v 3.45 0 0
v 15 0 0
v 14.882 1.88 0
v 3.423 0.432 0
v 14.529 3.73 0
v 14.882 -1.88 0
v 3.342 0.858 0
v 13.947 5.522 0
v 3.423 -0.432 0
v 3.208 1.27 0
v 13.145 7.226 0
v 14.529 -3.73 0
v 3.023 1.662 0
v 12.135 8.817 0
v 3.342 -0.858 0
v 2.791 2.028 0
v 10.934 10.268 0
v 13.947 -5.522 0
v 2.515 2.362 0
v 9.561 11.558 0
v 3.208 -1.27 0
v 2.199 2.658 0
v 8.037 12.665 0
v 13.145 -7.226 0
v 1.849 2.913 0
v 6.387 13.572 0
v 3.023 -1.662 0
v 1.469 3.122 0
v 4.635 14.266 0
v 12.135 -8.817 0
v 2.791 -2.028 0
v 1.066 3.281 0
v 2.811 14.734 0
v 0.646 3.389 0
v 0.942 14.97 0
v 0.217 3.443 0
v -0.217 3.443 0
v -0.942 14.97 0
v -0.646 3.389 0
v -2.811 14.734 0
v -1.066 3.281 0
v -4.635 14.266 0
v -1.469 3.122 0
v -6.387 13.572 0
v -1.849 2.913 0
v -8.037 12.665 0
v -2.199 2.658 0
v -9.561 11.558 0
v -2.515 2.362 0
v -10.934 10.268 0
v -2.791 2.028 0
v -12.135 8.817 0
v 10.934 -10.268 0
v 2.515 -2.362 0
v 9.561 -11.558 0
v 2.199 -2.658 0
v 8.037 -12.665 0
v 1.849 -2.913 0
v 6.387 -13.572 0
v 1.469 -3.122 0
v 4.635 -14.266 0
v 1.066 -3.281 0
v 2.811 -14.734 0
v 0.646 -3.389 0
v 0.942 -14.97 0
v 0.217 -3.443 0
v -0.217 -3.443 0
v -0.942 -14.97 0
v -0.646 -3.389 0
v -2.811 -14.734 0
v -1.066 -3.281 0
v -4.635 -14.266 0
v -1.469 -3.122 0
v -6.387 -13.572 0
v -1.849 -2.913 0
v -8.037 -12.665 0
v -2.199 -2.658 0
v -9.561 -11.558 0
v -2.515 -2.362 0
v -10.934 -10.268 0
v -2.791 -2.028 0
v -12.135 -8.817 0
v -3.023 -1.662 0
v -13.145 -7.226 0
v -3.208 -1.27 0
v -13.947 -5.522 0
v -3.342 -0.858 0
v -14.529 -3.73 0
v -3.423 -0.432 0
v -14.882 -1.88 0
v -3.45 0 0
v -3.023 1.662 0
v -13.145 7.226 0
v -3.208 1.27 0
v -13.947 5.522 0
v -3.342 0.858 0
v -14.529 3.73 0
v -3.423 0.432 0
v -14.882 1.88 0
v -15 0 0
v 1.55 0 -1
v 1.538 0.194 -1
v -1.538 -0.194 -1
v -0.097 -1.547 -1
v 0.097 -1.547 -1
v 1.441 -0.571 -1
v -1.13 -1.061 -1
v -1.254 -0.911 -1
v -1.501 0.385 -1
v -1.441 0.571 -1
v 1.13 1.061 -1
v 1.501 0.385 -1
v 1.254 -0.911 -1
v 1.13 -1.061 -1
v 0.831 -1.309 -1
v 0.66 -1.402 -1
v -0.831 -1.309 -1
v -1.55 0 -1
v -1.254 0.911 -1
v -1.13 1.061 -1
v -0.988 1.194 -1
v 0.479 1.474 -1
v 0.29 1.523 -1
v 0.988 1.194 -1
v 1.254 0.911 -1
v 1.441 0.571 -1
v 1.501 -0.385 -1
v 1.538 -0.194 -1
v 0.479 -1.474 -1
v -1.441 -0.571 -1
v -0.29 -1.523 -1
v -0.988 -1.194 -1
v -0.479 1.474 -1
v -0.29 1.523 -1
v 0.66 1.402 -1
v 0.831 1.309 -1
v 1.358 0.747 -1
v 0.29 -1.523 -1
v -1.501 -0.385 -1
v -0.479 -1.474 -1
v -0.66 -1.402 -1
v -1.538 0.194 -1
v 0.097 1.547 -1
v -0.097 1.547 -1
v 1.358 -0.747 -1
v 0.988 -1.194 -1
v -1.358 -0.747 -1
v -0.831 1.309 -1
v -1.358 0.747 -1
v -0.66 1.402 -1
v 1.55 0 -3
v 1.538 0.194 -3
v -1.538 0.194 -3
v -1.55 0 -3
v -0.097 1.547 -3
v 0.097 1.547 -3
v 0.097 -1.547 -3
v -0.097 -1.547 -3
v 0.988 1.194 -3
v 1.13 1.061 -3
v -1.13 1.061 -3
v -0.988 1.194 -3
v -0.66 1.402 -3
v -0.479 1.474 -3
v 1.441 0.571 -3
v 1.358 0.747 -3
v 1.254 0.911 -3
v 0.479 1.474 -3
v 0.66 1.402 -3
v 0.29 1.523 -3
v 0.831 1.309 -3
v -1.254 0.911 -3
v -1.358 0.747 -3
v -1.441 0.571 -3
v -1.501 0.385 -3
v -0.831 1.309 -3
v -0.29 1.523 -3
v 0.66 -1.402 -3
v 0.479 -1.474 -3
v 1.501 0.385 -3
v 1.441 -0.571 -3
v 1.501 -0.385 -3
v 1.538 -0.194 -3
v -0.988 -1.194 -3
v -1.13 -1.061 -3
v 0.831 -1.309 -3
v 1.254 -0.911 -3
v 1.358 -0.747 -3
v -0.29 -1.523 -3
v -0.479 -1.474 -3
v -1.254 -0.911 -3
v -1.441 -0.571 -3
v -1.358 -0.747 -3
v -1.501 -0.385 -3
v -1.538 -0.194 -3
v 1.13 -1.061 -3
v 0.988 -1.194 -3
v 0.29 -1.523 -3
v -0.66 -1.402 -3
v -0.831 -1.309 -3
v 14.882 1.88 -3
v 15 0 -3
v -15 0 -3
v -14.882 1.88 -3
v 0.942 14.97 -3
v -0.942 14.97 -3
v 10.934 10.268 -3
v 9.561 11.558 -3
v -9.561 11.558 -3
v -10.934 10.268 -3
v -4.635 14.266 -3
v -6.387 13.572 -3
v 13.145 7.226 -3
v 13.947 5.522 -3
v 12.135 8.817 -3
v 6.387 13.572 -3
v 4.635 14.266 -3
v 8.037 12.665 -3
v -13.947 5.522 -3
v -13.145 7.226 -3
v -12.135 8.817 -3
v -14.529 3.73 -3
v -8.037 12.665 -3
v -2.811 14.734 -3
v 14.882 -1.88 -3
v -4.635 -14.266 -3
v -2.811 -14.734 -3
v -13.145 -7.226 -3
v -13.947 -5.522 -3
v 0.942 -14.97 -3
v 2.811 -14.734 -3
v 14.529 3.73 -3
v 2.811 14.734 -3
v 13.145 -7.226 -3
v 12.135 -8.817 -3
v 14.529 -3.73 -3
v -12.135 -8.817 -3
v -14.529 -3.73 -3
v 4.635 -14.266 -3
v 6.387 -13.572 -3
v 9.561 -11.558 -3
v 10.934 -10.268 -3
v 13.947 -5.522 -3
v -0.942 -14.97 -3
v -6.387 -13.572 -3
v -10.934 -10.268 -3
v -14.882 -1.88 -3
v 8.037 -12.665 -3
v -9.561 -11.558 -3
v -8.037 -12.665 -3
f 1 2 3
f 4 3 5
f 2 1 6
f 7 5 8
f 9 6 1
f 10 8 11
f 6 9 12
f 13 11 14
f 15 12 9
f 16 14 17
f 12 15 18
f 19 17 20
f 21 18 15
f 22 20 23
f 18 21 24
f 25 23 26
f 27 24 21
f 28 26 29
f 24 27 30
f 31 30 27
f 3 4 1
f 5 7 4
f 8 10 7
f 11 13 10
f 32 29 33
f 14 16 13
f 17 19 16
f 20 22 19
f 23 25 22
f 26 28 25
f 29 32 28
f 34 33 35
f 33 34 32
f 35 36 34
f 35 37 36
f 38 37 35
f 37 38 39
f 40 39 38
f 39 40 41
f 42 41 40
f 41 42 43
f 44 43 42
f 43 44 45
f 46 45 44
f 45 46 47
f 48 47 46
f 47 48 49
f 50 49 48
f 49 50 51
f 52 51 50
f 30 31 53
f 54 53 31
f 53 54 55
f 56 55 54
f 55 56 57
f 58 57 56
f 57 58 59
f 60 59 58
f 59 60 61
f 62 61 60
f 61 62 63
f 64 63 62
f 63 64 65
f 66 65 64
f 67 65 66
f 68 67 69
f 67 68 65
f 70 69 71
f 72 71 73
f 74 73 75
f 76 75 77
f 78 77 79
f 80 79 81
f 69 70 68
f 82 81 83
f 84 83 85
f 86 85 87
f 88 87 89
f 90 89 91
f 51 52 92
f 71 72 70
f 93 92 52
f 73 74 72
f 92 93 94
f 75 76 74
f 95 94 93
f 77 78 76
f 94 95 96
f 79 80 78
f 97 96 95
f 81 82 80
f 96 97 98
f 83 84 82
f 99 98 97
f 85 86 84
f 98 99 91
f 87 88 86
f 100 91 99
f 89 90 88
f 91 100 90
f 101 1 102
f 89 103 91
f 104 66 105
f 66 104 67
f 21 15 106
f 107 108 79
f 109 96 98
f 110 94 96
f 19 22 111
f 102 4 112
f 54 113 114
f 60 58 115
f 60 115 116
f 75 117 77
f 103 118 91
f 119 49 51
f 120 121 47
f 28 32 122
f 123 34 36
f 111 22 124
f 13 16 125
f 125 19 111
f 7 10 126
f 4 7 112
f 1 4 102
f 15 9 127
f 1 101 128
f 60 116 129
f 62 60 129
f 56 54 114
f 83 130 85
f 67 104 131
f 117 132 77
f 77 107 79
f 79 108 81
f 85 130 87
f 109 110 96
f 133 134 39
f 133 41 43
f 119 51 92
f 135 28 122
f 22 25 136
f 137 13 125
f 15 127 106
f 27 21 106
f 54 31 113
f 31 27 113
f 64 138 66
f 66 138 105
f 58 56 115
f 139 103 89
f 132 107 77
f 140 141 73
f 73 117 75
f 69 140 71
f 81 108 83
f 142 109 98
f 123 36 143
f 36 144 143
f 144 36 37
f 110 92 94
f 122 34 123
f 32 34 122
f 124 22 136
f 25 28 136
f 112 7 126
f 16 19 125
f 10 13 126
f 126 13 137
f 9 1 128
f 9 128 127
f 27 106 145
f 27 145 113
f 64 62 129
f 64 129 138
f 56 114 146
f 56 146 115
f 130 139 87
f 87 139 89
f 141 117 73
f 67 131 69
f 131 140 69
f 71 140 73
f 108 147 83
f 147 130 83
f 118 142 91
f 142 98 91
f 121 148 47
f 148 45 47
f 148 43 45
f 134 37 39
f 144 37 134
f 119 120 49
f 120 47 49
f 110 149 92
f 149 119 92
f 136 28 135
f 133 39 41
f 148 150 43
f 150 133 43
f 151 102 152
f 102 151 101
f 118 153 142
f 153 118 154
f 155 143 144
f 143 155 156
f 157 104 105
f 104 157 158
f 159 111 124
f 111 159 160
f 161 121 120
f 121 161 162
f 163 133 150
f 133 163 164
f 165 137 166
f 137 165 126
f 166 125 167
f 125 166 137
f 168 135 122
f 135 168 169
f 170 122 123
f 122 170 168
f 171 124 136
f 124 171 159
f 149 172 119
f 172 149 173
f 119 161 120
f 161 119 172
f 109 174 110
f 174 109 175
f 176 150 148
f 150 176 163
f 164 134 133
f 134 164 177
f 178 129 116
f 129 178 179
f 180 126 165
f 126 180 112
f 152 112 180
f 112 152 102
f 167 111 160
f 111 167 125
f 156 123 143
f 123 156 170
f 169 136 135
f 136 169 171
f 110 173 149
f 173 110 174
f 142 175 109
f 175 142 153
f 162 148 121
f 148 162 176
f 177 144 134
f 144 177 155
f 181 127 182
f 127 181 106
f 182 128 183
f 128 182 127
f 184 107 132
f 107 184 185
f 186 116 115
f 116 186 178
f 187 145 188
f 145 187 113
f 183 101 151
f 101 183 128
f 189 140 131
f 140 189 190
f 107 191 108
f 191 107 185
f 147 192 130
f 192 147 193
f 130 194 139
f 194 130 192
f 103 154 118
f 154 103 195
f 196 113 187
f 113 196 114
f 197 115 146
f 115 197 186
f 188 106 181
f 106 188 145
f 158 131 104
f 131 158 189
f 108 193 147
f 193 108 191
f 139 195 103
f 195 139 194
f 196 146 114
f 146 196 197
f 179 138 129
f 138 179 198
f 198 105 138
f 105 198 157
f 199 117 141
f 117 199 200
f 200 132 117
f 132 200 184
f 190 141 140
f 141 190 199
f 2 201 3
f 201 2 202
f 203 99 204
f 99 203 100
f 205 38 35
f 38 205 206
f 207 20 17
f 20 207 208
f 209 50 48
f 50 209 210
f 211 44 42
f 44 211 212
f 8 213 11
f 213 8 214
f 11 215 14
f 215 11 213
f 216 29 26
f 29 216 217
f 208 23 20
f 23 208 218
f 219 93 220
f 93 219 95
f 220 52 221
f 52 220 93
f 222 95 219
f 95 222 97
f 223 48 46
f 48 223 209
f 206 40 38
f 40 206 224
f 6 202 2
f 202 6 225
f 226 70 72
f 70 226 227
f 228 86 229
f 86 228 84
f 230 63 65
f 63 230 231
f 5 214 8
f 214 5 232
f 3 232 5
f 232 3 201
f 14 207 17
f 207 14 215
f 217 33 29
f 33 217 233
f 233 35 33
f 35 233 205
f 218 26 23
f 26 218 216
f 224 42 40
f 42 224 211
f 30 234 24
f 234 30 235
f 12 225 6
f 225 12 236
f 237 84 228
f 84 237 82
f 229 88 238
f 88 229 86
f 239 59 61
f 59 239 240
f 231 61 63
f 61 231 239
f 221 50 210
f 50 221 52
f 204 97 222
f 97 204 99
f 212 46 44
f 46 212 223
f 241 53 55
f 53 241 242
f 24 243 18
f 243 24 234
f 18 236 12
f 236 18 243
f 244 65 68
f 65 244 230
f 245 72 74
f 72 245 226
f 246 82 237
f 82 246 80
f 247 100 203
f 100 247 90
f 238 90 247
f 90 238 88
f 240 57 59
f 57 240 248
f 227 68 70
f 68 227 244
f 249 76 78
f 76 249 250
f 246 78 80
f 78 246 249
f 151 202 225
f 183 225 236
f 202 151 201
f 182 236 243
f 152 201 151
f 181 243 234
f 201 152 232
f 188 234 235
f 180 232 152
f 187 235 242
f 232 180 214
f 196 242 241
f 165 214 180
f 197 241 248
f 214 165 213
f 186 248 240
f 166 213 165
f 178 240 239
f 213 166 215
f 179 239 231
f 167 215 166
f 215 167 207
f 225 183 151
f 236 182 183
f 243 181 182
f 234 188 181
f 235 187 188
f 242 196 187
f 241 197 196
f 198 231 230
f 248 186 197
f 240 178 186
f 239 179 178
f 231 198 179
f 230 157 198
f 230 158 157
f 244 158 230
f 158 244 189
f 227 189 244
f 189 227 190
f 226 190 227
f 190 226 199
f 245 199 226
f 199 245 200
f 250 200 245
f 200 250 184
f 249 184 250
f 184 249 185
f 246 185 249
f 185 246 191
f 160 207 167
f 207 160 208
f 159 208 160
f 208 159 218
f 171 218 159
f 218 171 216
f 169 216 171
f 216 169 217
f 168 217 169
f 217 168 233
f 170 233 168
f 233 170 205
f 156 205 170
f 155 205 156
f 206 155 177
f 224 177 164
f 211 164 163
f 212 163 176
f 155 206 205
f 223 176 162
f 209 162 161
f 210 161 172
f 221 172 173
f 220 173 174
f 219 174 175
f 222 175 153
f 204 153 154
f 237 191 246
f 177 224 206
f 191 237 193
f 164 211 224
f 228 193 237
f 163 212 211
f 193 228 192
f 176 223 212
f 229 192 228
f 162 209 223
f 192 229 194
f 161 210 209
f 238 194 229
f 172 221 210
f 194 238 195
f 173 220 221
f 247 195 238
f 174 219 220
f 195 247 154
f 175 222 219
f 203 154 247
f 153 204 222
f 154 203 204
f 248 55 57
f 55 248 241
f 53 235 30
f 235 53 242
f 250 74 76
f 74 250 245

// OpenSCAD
$fn = 50;


difference() {
	union() {
		translate(v = [0, 0, -3.0000000000]) {
			cylinder(h = 3, r = 15.0000000000);
		}
	}
	union() {
		translate(v = [0, 0, 0]) {
			rotate(a = [0, 0, 0]) {
				difference() {
					union() {
						translate(v = [0, 0, -6.0000000000]) {
							cylinder(h = 6, r = 1.2500000000);
						}
						translate(v = [0, 0, -1.0000000000]) {
							cylinder(h = 1.0000000000, r1 = 1.5500000000, r2 = 3.4500000000);
						}
						translate(v = [0, 0, -6.0000000000]) {
							cylinder(h = 6, r = 1.5500000000);
						}
						translate(v = [0, 0, -6.0000000000]) {
							cylinder(h = 6, r = 1.2500000000);
						}
					}
					union();
				}
			}
		}
	}
}
